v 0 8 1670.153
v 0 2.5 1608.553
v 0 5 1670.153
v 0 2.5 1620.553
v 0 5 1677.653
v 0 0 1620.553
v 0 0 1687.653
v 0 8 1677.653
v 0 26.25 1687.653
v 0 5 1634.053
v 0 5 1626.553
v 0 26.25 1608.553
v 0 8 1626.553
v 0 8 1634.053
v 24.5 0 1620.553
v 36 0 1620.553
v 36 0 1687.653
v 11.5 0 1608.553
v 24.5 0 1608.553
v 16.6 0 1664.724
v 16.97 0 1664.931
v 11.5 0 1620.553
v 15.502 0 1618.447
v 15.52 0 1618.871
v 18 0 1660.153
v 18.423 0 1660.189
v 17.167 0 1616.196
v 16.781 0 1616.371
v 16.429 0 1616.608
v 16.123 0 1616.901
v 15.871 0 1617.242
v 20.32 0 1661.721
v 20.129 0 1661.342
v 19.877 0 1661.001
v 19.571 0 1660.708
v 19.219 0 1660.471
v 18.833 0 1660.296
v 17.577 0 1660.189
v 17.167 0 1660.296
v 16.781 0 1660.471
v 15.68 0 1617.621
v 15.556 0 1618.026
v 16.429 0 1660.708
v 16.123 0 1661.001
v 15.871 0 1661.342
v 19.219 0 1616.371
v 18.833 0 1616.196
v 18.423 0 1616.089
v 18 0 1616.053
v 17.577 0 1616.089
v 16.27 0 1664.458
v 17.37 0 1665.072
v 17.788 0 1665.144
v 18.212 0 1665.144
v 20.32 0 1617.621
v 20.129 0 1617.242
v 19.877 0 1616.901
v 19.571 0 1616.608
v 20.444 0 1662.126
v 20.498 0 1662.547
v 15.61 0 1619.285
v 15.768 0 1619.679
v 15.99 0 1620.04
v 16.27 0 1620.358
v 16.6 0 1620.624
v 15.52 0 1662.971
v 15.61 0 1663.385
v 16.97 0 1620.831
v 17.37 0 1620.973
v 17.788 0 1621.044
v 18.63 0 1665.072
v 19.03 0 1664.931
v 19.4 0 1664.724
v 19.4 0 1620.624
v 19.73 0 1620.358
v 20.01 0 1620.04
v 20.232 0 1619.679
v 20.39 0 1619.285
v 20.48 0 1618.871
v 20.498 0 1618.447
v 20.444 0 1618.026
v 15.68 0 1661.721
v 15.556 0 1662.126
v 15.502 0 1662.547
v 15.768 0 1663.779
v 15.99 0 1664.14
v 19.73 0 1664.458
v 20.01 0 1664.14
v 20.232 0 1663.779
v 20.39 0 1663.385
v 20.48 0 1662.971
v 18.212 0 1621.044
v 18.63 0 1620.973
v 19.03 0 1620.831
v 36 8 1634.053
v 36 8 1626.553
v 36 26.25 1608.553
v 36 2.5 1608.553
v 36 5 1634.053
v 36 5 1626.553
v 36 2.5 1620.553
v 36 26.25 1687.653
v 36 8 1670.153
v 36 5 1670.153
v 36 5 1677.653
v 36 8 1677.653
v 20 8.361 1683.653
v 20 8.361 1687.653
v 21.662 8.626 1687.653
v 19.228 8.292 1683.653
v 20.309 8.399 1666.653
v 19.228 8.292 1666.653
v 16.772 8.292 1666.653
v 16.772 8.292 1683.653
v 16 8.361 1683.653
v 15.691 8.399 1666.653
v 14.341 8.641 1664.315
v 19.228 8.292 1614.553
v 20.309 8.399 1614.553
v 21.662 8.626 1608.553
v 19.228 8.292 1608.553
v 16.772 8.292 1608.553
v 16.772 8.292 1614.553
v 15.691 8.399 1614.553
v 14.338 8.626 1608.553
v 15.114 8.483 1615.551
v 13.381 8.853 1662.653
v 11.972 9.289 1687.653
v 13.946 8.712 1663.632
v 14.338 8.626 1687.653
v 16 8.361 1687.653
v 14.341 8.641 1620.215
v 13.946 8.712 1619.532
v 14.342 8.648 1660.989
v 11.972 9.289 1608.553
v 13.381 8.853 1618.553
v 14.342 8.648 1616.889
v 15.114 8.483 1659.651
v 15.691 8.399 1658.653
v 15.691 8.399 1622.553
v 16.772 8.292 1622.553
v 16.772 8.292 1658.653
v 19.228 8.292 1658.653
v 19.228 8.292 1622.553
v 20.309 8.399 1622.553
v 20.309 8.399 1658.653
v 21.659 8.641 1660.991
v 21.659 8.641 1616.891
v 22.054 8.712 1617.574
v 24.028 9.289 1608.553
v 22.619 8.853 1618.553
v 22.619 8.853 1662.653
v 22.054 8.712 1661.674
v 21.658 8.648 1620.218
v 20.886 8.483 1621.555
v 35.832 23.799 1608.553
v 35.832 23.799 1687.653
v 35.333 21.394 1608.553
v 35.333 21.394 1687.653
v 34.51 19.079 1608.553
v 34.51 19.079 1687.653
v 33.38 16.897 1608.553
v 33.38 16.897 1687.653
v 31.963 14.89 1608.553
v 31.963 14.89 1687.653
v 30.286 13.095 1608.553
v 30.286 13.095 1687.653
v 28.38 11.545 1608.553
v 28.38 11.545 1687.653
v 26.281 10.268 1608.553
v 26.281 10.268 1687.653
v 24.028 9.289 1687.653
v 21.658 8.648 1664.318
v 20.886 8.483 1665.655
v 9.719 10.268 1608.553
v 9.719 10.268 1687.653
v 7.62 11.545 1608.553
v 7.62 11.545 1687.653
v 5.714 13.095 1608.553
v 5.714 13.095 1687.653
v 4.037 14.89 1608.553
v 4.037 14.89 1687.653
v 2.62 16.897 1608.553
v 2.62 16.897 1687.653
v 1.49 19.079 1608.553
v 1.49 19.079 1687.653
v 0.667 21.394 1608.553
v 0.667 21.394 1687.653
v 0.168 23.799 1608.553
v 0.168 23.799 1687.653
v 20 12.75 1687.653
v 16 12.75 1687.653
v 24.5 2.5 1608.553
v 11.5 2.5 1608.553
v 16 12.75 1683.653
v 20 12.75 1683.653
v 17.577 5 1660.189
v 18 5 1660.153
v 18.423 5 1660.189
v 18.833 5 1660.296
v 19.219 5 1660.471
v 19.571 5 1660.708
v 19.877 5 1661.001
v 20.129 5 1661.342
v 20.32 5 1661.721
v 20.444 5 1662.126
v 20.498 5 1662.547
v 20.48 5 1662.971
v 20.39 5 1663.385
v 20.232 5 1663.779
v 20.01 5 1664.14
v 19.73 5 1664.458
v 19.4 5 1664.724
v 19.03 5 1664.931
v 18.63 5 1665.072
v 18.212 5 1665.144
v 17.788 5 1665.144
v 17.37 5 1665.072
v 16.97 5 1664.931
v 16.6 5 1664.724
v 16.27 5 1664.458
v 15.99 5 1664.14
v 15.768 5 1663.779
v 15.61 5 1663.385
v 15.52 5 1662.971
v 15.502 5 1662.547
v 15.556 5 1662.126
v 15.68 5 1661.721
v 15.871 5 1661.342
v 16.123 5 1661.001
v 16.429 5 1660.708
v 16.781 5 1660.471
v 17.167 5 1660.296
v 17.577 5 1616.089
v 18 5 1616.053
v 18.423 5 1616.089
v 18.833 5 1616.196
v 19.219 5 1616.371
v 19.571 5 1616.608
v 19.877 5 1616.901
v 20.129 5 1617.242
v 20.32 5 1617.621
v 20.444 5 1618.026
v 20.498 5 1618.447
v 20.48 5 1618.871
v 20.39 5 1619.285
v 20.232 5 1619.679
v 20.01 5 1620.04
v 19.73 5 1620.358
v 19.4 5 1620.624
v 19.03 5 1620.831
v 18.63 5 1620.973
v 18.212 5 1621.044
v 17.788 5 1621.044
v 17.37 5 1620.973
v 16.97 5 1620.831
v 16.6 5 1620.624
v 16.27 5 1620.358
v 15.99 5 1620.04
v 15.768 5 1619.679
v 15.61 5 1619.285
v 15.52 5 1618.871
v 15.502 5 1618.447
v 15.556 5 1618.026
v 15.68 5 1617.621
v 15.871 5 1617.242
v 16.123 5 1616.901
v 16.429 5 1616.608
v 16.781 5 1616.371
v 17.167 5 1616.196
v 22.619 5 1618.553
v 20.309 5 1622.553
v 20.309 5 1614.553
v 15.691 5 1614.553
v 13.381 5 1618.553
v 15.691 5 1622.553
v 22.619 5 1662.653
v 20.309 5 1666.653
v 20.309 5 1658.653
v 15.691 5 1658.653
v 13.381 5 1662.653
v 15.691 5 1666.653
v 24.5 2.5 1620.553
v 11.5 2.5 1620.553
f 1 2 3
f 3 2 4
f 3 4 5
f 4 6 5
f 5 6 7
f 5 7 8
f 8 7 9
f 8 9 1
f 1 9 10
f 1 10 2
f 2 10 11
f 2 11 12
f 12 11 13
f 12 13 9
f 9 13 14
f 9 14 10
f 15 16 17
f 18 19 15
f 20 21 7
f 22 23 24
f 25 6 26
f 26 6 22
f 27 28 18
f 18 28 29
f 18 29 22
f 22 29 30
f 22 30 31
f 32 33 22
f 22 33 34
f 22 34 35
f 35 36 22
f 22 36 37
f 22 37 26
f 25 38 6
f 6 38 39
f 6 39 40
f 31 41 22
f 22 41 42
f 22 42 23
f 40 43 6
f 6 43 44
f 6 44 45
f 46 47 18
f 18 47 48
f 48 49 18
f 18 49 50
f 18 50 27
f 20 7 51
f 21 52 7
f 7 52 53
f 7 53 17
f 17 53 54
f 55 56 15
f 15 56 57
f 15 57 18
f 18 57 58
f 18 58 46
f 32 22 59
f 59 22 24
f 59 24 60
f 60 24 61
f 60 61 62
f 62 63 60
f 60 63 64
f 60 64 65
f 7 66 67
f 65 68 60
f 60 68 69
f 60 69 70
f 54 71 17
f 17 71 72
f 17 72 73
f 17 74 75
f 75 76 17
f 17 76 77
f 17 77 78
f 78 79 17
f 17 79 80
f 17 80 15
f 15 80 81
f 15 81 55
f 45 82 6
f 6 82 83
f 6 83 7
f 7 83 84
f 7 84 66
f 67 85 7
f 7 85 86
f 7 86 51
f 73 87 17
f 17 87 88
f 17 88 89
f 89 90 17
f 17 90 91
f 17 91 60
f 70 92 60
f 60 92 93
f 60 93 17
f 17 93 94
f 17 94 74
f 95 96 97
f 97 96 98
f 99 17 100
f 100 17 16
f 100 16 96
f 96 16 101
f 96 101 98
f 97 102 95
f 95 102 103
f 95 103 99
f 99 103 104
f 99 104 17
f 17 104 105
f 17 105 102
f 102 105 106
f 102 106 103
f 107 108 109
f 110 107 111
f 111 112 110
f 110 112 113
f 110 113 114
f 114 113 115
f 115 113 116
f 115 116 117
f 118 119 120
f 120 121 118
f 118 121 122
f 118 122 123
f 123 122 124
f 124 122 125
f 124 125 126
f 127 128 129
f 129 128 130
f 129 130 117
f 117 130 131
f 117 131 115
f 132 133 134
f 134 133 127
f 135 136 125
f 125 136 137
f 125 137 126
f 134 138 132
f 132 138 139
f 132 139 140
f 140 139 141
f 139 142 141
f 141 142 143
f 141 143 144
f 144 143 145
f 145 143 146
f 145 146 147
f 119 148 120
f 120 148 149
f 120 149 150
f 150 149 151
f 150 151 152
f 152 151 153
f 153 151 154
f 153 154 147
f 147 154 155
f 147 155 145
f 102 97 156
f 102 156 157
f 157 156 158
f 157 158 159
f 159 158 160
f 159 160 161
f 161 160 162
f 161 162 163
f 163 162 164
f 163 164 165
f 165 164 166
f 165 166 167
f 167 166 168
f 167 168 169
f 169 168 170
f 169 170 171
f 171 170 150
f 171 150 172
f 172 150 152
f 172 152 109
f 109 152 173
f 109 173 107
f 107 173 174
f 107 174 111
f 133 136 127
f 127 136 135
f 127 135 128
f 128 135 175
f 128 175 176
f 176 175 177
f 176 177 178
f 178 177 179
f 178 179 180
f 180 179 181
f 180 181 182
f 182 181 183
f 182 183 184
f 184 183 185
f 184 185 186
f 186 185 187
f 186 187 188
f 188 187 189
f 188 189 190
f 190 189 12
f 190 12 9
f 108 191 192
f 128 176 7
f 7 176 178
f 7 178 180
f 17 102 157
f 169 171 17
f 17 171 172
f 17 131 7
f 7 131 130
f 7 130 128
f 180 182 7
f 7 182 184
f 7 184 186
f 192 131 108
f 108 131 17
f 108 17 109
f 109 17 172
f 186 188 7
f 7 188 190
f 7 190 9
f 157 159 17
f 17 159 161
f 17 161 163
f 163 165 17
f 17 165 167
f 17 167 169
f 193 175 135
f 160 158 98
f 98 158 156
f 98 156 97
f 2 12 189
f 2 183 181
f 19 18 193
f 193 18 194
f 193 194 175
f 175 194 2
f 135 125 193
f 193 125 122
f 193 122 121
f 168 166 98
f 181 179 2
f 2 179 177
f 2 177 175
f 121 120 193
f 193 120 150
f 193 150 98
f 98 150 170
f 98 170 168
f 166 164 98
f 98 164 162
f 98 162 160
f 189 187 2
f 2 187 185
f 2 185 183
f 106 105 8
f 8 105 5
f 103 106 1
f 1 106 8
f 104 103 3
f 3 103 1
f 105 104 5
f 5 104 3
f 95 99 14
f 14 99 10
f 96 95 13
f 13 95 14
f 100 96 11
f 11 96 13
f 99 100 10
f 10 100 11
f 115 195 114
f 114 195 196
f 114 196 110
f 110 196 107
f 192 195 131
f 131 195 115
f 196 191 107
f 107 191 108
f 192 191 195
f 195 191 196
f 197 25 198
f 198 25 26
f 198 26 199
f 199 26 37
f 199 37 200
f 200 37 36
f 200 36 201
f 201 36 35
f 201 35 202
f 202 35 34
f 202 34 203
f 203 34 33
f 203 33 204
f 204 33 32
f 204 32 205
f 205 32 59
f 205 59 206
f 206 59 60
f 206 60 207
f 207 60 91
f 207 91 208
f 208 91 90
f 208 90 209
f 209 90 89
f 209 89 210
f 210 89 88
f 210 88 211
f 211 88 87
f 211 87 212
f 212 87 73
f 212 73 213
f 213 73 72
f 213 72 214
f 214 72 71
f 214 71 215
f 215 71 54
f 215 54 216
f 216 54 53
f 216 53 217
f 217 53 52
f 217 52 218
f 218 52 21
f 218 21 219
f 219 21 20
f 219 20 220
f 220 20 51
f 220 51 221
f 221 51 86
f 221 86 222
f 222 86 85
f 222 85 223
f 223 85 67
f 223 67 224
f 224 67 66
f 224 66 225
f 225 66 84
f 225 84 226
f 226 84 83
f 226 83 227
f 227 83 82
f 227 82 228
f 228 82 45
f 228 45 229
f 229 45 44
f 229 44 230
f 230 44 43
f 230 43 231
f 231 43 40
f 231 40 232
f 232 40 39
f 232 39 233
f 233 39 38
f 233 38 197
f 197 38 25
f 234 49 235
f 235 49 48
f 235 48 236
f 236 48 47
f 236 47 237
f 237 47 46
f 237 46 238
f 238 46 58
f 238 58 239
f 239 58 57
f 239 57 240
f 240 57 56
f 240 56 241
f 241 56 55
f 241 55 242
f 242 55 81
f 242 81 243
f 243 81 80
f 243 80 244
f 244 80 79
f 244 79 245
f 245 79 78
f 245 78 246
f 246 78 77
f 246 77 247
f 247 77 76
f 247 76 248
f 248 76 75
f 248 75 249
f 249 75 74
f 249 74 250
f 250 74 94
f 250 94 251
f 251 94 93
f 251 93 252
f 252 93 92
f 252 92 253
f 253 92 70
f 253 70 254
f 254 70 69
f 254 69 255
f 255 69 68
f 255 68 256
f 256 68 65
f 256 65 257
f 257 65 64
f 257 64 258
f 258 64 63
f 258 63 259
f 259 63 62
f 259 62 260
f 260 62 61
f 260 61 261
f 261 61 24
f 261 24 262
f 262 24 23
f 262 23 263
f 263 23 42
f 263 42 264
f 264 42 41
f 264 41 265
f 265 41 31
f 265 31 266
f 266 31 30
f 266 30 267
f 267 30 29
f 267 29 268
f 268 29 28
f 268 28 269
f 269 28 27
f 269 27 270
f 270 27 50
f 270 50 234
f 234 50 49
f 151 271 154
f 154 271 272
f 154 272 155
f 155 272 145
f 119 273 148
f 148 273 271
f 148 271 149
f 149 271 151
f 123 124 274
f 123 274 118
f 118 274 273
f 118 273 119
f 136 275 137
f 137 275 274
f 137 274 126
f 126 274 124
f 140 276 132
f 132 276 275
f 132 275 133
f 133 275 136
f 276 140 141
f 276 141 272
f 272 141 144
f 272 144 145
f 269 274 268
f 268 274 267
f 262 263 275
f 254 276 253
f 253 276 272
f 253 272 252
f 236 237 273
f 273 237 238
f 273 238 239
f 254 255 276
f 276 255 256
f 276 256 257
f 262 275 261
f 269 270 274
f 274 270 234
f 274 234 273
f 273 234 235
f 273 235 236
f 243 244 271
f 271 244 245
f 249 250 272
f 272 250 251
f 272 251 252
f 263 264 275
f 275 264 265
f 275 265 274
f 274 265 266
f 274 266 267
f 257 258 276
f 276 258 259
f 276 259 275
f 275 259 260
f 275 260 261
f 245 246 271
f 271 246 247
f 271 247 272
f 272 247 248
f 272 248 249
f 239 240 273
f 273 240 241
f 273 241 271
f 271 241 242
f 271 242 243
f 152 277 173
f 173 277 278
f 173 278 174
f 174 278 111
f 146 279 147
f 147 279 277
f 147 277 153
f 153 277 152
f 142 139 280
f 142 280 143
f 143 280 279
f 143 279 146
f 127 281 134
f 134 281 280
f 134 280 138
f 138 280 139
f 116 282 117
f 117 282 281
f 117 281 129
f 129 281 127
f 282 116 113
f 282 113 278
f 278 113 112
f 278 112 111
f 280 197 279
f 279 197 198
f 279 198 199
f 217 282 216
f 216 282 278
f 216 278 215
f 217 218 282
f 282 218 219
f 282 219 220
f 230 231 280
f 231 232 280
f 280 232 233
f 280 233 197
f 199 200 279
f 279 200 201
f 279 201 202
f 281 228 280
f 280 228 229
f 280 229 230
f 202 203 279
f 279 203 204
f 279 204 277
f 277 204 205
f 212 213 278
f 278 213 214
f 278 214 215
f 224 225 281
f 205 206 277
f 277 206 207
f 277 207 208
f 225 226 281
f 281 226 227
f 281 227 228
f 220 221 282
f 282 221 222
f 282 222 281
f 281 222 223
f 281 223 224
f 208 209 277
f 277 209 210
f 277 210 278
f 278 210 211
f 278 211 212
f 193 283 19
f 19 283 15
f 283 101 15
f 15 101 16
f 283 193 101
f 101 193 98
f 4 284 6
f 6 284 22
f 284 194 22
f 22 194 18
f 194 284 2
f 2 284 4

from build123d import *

# Parameters (mm, degrees)
BOSS_EXTRU_1_DEPTH       = 79.1
ESQUISSE7_W              = 7.5
ESQUISSE7_H              = 3
BOSS_EXTRU_3_DEPTH       = 36
ESQUISSE7_2_W            = 7.5
ESQUISSE7_2_H            = 3
ENL_V_MAT_EXTRU_5_DEPTH  = 36
ESQUISSE9_W              = 4
ESQUISSE9_H              = 4
BOSS_EXTRU_6_DEPTH       = 12.75
ESQUISSE11_R             = 2.5
ENL_V_MAT_EXTRU_6_DEPTH  = 10
ENL_V_START              = -5
ENL_V_MAT_EXTRU_12_DEPTH = 10
ESQUISSE13_W             = 11.5
ESQUISSE13_H             = 12
ENL_V_MAT_EXTRU_13_DEPTH = 2.5


with BuildPart() as part:
    # Esquisse1 → Boss.-Extru.1 (new body)
    with BuildSketch(Plane.XY.offset(1608.553140947)):
        with BuildLine():
            Line((0, 0), (36, 0))
            Line((36, 0), (36, 26.25))
            ThreePointArc((36, 26.25), (18, 8.25), (0, 26.25))
            Line((0, 26.25), (0, 0))
        make_face()
    extrude(amount=BOSS_EXTRU_1_DEPTH)

    # Esquisse7 → Boss.-Extru.3 (add)
    with BuildSketch(Plane(origin=(36, 0, 0), x_dir=(0, 0, -1), z_dir=(1, 0, 0))):
        with Locations((-1673.903140947, 6.5)):
            Rectangle(ESQUISSE7_W, ESQUISSE7_H)
        with Locations((-1630.303140947, 6.5)):
            Rectangle(ESQUISSE7_W, ESQUISSE7_H)
    extrude(amount=-BOSS_EXTRU_3_DEPTH)

    # Esquisse7<2> → Enlèv. mat.-Extru.5 (cut)
    with BuildSketch(Plane(origin=(36, 0, 0), x_dir=(0, 0, -1), z_dir=(1, 0, 0))):
        with Locations((-1673.903140947, 6.5)):
            Rectangle(ESQUISSE7_2_W, ESQUISSE7_2_H)
        with Locations((-1630.303140947, 6.5)):
            Rectangle(ESQUISSE7_2_W, ESQUISSE7_2_H)
    extrude(amount=-ENL_V_MAT_EXTRU_5_DEPTH, mode=Mode.SUBTRACT)

    # Esquisse9 → Boss.-Extru.6 (add)
    with BuildSketch(Plane.XZ):
        with Locations((18, 1685.653140947)):
            Rectangle(ESQUISSE9_W, ESQUISSE9_H)
    extrude(amount=-BOSS_EXTRU_6_DEPTH)

    # Esquisse11 → Enlèv. mat.-Extru.6 (cut)
    with BuildSketch(Plane.XZ):
        with Locations(Location((18, 1662.653140947, 0), (0, 0, 270))):
            Circle(ESQUISSE11_R)
        with Locations(Location((18, 1618.553140947, 0), (0, 0, 270))):
            Circle(ESQUISSE11_R)
    extrude(amount=-ENL_V_MAT_EXTRU_6_DEPTH, mode=Mode.SUBTRACT)

    # Esquisse12 → Enlèv. mat.-Extru.12 (cut)
    with BuildSketch(Plane.XZ.offset(ENL_V_START)):
        Polygon((20.309401077, 1622.553140947), (15.690598923, 1622.553140947), (13.381197846, 1618.553140947), (15.690598923, 1614.553140947), (20.309401077, 1614.553140947), (22.618802154, 1618.553140947), align=None)
        Polygon((20.309401077, 1666.653140947), (15.690598923, 1666.653140947), (13.381197846, 1662.653140947), (15.690598923, 1658.653140947), (20.309401077, 1658.653140947), (22.618802154, 1662.653140947), align=None)
    extrude(amount=-ENL_V_MAT_EXTRU_12_DEPTH, mode=Mode.SUBTRACT)

    # Esquisse13 → Enlèv. mat.-Extru.13 (cut)
    with BuildSketch(Plane.XZ):
        with Locations((30.25, 1614.553140947)):
            Rectangle(ESQUISSE13_W, ESQUISSE13_H)
        with Locations((5.75, 1614.553140947)):
            Rectangle(ESQUISSE13_W, ESQUISSE13_H)
    extrude(amount=-ENL_V_MAT_EXTRU_13_DEPTH, mode=Mode.SUBTRACT)


solid = part.part
